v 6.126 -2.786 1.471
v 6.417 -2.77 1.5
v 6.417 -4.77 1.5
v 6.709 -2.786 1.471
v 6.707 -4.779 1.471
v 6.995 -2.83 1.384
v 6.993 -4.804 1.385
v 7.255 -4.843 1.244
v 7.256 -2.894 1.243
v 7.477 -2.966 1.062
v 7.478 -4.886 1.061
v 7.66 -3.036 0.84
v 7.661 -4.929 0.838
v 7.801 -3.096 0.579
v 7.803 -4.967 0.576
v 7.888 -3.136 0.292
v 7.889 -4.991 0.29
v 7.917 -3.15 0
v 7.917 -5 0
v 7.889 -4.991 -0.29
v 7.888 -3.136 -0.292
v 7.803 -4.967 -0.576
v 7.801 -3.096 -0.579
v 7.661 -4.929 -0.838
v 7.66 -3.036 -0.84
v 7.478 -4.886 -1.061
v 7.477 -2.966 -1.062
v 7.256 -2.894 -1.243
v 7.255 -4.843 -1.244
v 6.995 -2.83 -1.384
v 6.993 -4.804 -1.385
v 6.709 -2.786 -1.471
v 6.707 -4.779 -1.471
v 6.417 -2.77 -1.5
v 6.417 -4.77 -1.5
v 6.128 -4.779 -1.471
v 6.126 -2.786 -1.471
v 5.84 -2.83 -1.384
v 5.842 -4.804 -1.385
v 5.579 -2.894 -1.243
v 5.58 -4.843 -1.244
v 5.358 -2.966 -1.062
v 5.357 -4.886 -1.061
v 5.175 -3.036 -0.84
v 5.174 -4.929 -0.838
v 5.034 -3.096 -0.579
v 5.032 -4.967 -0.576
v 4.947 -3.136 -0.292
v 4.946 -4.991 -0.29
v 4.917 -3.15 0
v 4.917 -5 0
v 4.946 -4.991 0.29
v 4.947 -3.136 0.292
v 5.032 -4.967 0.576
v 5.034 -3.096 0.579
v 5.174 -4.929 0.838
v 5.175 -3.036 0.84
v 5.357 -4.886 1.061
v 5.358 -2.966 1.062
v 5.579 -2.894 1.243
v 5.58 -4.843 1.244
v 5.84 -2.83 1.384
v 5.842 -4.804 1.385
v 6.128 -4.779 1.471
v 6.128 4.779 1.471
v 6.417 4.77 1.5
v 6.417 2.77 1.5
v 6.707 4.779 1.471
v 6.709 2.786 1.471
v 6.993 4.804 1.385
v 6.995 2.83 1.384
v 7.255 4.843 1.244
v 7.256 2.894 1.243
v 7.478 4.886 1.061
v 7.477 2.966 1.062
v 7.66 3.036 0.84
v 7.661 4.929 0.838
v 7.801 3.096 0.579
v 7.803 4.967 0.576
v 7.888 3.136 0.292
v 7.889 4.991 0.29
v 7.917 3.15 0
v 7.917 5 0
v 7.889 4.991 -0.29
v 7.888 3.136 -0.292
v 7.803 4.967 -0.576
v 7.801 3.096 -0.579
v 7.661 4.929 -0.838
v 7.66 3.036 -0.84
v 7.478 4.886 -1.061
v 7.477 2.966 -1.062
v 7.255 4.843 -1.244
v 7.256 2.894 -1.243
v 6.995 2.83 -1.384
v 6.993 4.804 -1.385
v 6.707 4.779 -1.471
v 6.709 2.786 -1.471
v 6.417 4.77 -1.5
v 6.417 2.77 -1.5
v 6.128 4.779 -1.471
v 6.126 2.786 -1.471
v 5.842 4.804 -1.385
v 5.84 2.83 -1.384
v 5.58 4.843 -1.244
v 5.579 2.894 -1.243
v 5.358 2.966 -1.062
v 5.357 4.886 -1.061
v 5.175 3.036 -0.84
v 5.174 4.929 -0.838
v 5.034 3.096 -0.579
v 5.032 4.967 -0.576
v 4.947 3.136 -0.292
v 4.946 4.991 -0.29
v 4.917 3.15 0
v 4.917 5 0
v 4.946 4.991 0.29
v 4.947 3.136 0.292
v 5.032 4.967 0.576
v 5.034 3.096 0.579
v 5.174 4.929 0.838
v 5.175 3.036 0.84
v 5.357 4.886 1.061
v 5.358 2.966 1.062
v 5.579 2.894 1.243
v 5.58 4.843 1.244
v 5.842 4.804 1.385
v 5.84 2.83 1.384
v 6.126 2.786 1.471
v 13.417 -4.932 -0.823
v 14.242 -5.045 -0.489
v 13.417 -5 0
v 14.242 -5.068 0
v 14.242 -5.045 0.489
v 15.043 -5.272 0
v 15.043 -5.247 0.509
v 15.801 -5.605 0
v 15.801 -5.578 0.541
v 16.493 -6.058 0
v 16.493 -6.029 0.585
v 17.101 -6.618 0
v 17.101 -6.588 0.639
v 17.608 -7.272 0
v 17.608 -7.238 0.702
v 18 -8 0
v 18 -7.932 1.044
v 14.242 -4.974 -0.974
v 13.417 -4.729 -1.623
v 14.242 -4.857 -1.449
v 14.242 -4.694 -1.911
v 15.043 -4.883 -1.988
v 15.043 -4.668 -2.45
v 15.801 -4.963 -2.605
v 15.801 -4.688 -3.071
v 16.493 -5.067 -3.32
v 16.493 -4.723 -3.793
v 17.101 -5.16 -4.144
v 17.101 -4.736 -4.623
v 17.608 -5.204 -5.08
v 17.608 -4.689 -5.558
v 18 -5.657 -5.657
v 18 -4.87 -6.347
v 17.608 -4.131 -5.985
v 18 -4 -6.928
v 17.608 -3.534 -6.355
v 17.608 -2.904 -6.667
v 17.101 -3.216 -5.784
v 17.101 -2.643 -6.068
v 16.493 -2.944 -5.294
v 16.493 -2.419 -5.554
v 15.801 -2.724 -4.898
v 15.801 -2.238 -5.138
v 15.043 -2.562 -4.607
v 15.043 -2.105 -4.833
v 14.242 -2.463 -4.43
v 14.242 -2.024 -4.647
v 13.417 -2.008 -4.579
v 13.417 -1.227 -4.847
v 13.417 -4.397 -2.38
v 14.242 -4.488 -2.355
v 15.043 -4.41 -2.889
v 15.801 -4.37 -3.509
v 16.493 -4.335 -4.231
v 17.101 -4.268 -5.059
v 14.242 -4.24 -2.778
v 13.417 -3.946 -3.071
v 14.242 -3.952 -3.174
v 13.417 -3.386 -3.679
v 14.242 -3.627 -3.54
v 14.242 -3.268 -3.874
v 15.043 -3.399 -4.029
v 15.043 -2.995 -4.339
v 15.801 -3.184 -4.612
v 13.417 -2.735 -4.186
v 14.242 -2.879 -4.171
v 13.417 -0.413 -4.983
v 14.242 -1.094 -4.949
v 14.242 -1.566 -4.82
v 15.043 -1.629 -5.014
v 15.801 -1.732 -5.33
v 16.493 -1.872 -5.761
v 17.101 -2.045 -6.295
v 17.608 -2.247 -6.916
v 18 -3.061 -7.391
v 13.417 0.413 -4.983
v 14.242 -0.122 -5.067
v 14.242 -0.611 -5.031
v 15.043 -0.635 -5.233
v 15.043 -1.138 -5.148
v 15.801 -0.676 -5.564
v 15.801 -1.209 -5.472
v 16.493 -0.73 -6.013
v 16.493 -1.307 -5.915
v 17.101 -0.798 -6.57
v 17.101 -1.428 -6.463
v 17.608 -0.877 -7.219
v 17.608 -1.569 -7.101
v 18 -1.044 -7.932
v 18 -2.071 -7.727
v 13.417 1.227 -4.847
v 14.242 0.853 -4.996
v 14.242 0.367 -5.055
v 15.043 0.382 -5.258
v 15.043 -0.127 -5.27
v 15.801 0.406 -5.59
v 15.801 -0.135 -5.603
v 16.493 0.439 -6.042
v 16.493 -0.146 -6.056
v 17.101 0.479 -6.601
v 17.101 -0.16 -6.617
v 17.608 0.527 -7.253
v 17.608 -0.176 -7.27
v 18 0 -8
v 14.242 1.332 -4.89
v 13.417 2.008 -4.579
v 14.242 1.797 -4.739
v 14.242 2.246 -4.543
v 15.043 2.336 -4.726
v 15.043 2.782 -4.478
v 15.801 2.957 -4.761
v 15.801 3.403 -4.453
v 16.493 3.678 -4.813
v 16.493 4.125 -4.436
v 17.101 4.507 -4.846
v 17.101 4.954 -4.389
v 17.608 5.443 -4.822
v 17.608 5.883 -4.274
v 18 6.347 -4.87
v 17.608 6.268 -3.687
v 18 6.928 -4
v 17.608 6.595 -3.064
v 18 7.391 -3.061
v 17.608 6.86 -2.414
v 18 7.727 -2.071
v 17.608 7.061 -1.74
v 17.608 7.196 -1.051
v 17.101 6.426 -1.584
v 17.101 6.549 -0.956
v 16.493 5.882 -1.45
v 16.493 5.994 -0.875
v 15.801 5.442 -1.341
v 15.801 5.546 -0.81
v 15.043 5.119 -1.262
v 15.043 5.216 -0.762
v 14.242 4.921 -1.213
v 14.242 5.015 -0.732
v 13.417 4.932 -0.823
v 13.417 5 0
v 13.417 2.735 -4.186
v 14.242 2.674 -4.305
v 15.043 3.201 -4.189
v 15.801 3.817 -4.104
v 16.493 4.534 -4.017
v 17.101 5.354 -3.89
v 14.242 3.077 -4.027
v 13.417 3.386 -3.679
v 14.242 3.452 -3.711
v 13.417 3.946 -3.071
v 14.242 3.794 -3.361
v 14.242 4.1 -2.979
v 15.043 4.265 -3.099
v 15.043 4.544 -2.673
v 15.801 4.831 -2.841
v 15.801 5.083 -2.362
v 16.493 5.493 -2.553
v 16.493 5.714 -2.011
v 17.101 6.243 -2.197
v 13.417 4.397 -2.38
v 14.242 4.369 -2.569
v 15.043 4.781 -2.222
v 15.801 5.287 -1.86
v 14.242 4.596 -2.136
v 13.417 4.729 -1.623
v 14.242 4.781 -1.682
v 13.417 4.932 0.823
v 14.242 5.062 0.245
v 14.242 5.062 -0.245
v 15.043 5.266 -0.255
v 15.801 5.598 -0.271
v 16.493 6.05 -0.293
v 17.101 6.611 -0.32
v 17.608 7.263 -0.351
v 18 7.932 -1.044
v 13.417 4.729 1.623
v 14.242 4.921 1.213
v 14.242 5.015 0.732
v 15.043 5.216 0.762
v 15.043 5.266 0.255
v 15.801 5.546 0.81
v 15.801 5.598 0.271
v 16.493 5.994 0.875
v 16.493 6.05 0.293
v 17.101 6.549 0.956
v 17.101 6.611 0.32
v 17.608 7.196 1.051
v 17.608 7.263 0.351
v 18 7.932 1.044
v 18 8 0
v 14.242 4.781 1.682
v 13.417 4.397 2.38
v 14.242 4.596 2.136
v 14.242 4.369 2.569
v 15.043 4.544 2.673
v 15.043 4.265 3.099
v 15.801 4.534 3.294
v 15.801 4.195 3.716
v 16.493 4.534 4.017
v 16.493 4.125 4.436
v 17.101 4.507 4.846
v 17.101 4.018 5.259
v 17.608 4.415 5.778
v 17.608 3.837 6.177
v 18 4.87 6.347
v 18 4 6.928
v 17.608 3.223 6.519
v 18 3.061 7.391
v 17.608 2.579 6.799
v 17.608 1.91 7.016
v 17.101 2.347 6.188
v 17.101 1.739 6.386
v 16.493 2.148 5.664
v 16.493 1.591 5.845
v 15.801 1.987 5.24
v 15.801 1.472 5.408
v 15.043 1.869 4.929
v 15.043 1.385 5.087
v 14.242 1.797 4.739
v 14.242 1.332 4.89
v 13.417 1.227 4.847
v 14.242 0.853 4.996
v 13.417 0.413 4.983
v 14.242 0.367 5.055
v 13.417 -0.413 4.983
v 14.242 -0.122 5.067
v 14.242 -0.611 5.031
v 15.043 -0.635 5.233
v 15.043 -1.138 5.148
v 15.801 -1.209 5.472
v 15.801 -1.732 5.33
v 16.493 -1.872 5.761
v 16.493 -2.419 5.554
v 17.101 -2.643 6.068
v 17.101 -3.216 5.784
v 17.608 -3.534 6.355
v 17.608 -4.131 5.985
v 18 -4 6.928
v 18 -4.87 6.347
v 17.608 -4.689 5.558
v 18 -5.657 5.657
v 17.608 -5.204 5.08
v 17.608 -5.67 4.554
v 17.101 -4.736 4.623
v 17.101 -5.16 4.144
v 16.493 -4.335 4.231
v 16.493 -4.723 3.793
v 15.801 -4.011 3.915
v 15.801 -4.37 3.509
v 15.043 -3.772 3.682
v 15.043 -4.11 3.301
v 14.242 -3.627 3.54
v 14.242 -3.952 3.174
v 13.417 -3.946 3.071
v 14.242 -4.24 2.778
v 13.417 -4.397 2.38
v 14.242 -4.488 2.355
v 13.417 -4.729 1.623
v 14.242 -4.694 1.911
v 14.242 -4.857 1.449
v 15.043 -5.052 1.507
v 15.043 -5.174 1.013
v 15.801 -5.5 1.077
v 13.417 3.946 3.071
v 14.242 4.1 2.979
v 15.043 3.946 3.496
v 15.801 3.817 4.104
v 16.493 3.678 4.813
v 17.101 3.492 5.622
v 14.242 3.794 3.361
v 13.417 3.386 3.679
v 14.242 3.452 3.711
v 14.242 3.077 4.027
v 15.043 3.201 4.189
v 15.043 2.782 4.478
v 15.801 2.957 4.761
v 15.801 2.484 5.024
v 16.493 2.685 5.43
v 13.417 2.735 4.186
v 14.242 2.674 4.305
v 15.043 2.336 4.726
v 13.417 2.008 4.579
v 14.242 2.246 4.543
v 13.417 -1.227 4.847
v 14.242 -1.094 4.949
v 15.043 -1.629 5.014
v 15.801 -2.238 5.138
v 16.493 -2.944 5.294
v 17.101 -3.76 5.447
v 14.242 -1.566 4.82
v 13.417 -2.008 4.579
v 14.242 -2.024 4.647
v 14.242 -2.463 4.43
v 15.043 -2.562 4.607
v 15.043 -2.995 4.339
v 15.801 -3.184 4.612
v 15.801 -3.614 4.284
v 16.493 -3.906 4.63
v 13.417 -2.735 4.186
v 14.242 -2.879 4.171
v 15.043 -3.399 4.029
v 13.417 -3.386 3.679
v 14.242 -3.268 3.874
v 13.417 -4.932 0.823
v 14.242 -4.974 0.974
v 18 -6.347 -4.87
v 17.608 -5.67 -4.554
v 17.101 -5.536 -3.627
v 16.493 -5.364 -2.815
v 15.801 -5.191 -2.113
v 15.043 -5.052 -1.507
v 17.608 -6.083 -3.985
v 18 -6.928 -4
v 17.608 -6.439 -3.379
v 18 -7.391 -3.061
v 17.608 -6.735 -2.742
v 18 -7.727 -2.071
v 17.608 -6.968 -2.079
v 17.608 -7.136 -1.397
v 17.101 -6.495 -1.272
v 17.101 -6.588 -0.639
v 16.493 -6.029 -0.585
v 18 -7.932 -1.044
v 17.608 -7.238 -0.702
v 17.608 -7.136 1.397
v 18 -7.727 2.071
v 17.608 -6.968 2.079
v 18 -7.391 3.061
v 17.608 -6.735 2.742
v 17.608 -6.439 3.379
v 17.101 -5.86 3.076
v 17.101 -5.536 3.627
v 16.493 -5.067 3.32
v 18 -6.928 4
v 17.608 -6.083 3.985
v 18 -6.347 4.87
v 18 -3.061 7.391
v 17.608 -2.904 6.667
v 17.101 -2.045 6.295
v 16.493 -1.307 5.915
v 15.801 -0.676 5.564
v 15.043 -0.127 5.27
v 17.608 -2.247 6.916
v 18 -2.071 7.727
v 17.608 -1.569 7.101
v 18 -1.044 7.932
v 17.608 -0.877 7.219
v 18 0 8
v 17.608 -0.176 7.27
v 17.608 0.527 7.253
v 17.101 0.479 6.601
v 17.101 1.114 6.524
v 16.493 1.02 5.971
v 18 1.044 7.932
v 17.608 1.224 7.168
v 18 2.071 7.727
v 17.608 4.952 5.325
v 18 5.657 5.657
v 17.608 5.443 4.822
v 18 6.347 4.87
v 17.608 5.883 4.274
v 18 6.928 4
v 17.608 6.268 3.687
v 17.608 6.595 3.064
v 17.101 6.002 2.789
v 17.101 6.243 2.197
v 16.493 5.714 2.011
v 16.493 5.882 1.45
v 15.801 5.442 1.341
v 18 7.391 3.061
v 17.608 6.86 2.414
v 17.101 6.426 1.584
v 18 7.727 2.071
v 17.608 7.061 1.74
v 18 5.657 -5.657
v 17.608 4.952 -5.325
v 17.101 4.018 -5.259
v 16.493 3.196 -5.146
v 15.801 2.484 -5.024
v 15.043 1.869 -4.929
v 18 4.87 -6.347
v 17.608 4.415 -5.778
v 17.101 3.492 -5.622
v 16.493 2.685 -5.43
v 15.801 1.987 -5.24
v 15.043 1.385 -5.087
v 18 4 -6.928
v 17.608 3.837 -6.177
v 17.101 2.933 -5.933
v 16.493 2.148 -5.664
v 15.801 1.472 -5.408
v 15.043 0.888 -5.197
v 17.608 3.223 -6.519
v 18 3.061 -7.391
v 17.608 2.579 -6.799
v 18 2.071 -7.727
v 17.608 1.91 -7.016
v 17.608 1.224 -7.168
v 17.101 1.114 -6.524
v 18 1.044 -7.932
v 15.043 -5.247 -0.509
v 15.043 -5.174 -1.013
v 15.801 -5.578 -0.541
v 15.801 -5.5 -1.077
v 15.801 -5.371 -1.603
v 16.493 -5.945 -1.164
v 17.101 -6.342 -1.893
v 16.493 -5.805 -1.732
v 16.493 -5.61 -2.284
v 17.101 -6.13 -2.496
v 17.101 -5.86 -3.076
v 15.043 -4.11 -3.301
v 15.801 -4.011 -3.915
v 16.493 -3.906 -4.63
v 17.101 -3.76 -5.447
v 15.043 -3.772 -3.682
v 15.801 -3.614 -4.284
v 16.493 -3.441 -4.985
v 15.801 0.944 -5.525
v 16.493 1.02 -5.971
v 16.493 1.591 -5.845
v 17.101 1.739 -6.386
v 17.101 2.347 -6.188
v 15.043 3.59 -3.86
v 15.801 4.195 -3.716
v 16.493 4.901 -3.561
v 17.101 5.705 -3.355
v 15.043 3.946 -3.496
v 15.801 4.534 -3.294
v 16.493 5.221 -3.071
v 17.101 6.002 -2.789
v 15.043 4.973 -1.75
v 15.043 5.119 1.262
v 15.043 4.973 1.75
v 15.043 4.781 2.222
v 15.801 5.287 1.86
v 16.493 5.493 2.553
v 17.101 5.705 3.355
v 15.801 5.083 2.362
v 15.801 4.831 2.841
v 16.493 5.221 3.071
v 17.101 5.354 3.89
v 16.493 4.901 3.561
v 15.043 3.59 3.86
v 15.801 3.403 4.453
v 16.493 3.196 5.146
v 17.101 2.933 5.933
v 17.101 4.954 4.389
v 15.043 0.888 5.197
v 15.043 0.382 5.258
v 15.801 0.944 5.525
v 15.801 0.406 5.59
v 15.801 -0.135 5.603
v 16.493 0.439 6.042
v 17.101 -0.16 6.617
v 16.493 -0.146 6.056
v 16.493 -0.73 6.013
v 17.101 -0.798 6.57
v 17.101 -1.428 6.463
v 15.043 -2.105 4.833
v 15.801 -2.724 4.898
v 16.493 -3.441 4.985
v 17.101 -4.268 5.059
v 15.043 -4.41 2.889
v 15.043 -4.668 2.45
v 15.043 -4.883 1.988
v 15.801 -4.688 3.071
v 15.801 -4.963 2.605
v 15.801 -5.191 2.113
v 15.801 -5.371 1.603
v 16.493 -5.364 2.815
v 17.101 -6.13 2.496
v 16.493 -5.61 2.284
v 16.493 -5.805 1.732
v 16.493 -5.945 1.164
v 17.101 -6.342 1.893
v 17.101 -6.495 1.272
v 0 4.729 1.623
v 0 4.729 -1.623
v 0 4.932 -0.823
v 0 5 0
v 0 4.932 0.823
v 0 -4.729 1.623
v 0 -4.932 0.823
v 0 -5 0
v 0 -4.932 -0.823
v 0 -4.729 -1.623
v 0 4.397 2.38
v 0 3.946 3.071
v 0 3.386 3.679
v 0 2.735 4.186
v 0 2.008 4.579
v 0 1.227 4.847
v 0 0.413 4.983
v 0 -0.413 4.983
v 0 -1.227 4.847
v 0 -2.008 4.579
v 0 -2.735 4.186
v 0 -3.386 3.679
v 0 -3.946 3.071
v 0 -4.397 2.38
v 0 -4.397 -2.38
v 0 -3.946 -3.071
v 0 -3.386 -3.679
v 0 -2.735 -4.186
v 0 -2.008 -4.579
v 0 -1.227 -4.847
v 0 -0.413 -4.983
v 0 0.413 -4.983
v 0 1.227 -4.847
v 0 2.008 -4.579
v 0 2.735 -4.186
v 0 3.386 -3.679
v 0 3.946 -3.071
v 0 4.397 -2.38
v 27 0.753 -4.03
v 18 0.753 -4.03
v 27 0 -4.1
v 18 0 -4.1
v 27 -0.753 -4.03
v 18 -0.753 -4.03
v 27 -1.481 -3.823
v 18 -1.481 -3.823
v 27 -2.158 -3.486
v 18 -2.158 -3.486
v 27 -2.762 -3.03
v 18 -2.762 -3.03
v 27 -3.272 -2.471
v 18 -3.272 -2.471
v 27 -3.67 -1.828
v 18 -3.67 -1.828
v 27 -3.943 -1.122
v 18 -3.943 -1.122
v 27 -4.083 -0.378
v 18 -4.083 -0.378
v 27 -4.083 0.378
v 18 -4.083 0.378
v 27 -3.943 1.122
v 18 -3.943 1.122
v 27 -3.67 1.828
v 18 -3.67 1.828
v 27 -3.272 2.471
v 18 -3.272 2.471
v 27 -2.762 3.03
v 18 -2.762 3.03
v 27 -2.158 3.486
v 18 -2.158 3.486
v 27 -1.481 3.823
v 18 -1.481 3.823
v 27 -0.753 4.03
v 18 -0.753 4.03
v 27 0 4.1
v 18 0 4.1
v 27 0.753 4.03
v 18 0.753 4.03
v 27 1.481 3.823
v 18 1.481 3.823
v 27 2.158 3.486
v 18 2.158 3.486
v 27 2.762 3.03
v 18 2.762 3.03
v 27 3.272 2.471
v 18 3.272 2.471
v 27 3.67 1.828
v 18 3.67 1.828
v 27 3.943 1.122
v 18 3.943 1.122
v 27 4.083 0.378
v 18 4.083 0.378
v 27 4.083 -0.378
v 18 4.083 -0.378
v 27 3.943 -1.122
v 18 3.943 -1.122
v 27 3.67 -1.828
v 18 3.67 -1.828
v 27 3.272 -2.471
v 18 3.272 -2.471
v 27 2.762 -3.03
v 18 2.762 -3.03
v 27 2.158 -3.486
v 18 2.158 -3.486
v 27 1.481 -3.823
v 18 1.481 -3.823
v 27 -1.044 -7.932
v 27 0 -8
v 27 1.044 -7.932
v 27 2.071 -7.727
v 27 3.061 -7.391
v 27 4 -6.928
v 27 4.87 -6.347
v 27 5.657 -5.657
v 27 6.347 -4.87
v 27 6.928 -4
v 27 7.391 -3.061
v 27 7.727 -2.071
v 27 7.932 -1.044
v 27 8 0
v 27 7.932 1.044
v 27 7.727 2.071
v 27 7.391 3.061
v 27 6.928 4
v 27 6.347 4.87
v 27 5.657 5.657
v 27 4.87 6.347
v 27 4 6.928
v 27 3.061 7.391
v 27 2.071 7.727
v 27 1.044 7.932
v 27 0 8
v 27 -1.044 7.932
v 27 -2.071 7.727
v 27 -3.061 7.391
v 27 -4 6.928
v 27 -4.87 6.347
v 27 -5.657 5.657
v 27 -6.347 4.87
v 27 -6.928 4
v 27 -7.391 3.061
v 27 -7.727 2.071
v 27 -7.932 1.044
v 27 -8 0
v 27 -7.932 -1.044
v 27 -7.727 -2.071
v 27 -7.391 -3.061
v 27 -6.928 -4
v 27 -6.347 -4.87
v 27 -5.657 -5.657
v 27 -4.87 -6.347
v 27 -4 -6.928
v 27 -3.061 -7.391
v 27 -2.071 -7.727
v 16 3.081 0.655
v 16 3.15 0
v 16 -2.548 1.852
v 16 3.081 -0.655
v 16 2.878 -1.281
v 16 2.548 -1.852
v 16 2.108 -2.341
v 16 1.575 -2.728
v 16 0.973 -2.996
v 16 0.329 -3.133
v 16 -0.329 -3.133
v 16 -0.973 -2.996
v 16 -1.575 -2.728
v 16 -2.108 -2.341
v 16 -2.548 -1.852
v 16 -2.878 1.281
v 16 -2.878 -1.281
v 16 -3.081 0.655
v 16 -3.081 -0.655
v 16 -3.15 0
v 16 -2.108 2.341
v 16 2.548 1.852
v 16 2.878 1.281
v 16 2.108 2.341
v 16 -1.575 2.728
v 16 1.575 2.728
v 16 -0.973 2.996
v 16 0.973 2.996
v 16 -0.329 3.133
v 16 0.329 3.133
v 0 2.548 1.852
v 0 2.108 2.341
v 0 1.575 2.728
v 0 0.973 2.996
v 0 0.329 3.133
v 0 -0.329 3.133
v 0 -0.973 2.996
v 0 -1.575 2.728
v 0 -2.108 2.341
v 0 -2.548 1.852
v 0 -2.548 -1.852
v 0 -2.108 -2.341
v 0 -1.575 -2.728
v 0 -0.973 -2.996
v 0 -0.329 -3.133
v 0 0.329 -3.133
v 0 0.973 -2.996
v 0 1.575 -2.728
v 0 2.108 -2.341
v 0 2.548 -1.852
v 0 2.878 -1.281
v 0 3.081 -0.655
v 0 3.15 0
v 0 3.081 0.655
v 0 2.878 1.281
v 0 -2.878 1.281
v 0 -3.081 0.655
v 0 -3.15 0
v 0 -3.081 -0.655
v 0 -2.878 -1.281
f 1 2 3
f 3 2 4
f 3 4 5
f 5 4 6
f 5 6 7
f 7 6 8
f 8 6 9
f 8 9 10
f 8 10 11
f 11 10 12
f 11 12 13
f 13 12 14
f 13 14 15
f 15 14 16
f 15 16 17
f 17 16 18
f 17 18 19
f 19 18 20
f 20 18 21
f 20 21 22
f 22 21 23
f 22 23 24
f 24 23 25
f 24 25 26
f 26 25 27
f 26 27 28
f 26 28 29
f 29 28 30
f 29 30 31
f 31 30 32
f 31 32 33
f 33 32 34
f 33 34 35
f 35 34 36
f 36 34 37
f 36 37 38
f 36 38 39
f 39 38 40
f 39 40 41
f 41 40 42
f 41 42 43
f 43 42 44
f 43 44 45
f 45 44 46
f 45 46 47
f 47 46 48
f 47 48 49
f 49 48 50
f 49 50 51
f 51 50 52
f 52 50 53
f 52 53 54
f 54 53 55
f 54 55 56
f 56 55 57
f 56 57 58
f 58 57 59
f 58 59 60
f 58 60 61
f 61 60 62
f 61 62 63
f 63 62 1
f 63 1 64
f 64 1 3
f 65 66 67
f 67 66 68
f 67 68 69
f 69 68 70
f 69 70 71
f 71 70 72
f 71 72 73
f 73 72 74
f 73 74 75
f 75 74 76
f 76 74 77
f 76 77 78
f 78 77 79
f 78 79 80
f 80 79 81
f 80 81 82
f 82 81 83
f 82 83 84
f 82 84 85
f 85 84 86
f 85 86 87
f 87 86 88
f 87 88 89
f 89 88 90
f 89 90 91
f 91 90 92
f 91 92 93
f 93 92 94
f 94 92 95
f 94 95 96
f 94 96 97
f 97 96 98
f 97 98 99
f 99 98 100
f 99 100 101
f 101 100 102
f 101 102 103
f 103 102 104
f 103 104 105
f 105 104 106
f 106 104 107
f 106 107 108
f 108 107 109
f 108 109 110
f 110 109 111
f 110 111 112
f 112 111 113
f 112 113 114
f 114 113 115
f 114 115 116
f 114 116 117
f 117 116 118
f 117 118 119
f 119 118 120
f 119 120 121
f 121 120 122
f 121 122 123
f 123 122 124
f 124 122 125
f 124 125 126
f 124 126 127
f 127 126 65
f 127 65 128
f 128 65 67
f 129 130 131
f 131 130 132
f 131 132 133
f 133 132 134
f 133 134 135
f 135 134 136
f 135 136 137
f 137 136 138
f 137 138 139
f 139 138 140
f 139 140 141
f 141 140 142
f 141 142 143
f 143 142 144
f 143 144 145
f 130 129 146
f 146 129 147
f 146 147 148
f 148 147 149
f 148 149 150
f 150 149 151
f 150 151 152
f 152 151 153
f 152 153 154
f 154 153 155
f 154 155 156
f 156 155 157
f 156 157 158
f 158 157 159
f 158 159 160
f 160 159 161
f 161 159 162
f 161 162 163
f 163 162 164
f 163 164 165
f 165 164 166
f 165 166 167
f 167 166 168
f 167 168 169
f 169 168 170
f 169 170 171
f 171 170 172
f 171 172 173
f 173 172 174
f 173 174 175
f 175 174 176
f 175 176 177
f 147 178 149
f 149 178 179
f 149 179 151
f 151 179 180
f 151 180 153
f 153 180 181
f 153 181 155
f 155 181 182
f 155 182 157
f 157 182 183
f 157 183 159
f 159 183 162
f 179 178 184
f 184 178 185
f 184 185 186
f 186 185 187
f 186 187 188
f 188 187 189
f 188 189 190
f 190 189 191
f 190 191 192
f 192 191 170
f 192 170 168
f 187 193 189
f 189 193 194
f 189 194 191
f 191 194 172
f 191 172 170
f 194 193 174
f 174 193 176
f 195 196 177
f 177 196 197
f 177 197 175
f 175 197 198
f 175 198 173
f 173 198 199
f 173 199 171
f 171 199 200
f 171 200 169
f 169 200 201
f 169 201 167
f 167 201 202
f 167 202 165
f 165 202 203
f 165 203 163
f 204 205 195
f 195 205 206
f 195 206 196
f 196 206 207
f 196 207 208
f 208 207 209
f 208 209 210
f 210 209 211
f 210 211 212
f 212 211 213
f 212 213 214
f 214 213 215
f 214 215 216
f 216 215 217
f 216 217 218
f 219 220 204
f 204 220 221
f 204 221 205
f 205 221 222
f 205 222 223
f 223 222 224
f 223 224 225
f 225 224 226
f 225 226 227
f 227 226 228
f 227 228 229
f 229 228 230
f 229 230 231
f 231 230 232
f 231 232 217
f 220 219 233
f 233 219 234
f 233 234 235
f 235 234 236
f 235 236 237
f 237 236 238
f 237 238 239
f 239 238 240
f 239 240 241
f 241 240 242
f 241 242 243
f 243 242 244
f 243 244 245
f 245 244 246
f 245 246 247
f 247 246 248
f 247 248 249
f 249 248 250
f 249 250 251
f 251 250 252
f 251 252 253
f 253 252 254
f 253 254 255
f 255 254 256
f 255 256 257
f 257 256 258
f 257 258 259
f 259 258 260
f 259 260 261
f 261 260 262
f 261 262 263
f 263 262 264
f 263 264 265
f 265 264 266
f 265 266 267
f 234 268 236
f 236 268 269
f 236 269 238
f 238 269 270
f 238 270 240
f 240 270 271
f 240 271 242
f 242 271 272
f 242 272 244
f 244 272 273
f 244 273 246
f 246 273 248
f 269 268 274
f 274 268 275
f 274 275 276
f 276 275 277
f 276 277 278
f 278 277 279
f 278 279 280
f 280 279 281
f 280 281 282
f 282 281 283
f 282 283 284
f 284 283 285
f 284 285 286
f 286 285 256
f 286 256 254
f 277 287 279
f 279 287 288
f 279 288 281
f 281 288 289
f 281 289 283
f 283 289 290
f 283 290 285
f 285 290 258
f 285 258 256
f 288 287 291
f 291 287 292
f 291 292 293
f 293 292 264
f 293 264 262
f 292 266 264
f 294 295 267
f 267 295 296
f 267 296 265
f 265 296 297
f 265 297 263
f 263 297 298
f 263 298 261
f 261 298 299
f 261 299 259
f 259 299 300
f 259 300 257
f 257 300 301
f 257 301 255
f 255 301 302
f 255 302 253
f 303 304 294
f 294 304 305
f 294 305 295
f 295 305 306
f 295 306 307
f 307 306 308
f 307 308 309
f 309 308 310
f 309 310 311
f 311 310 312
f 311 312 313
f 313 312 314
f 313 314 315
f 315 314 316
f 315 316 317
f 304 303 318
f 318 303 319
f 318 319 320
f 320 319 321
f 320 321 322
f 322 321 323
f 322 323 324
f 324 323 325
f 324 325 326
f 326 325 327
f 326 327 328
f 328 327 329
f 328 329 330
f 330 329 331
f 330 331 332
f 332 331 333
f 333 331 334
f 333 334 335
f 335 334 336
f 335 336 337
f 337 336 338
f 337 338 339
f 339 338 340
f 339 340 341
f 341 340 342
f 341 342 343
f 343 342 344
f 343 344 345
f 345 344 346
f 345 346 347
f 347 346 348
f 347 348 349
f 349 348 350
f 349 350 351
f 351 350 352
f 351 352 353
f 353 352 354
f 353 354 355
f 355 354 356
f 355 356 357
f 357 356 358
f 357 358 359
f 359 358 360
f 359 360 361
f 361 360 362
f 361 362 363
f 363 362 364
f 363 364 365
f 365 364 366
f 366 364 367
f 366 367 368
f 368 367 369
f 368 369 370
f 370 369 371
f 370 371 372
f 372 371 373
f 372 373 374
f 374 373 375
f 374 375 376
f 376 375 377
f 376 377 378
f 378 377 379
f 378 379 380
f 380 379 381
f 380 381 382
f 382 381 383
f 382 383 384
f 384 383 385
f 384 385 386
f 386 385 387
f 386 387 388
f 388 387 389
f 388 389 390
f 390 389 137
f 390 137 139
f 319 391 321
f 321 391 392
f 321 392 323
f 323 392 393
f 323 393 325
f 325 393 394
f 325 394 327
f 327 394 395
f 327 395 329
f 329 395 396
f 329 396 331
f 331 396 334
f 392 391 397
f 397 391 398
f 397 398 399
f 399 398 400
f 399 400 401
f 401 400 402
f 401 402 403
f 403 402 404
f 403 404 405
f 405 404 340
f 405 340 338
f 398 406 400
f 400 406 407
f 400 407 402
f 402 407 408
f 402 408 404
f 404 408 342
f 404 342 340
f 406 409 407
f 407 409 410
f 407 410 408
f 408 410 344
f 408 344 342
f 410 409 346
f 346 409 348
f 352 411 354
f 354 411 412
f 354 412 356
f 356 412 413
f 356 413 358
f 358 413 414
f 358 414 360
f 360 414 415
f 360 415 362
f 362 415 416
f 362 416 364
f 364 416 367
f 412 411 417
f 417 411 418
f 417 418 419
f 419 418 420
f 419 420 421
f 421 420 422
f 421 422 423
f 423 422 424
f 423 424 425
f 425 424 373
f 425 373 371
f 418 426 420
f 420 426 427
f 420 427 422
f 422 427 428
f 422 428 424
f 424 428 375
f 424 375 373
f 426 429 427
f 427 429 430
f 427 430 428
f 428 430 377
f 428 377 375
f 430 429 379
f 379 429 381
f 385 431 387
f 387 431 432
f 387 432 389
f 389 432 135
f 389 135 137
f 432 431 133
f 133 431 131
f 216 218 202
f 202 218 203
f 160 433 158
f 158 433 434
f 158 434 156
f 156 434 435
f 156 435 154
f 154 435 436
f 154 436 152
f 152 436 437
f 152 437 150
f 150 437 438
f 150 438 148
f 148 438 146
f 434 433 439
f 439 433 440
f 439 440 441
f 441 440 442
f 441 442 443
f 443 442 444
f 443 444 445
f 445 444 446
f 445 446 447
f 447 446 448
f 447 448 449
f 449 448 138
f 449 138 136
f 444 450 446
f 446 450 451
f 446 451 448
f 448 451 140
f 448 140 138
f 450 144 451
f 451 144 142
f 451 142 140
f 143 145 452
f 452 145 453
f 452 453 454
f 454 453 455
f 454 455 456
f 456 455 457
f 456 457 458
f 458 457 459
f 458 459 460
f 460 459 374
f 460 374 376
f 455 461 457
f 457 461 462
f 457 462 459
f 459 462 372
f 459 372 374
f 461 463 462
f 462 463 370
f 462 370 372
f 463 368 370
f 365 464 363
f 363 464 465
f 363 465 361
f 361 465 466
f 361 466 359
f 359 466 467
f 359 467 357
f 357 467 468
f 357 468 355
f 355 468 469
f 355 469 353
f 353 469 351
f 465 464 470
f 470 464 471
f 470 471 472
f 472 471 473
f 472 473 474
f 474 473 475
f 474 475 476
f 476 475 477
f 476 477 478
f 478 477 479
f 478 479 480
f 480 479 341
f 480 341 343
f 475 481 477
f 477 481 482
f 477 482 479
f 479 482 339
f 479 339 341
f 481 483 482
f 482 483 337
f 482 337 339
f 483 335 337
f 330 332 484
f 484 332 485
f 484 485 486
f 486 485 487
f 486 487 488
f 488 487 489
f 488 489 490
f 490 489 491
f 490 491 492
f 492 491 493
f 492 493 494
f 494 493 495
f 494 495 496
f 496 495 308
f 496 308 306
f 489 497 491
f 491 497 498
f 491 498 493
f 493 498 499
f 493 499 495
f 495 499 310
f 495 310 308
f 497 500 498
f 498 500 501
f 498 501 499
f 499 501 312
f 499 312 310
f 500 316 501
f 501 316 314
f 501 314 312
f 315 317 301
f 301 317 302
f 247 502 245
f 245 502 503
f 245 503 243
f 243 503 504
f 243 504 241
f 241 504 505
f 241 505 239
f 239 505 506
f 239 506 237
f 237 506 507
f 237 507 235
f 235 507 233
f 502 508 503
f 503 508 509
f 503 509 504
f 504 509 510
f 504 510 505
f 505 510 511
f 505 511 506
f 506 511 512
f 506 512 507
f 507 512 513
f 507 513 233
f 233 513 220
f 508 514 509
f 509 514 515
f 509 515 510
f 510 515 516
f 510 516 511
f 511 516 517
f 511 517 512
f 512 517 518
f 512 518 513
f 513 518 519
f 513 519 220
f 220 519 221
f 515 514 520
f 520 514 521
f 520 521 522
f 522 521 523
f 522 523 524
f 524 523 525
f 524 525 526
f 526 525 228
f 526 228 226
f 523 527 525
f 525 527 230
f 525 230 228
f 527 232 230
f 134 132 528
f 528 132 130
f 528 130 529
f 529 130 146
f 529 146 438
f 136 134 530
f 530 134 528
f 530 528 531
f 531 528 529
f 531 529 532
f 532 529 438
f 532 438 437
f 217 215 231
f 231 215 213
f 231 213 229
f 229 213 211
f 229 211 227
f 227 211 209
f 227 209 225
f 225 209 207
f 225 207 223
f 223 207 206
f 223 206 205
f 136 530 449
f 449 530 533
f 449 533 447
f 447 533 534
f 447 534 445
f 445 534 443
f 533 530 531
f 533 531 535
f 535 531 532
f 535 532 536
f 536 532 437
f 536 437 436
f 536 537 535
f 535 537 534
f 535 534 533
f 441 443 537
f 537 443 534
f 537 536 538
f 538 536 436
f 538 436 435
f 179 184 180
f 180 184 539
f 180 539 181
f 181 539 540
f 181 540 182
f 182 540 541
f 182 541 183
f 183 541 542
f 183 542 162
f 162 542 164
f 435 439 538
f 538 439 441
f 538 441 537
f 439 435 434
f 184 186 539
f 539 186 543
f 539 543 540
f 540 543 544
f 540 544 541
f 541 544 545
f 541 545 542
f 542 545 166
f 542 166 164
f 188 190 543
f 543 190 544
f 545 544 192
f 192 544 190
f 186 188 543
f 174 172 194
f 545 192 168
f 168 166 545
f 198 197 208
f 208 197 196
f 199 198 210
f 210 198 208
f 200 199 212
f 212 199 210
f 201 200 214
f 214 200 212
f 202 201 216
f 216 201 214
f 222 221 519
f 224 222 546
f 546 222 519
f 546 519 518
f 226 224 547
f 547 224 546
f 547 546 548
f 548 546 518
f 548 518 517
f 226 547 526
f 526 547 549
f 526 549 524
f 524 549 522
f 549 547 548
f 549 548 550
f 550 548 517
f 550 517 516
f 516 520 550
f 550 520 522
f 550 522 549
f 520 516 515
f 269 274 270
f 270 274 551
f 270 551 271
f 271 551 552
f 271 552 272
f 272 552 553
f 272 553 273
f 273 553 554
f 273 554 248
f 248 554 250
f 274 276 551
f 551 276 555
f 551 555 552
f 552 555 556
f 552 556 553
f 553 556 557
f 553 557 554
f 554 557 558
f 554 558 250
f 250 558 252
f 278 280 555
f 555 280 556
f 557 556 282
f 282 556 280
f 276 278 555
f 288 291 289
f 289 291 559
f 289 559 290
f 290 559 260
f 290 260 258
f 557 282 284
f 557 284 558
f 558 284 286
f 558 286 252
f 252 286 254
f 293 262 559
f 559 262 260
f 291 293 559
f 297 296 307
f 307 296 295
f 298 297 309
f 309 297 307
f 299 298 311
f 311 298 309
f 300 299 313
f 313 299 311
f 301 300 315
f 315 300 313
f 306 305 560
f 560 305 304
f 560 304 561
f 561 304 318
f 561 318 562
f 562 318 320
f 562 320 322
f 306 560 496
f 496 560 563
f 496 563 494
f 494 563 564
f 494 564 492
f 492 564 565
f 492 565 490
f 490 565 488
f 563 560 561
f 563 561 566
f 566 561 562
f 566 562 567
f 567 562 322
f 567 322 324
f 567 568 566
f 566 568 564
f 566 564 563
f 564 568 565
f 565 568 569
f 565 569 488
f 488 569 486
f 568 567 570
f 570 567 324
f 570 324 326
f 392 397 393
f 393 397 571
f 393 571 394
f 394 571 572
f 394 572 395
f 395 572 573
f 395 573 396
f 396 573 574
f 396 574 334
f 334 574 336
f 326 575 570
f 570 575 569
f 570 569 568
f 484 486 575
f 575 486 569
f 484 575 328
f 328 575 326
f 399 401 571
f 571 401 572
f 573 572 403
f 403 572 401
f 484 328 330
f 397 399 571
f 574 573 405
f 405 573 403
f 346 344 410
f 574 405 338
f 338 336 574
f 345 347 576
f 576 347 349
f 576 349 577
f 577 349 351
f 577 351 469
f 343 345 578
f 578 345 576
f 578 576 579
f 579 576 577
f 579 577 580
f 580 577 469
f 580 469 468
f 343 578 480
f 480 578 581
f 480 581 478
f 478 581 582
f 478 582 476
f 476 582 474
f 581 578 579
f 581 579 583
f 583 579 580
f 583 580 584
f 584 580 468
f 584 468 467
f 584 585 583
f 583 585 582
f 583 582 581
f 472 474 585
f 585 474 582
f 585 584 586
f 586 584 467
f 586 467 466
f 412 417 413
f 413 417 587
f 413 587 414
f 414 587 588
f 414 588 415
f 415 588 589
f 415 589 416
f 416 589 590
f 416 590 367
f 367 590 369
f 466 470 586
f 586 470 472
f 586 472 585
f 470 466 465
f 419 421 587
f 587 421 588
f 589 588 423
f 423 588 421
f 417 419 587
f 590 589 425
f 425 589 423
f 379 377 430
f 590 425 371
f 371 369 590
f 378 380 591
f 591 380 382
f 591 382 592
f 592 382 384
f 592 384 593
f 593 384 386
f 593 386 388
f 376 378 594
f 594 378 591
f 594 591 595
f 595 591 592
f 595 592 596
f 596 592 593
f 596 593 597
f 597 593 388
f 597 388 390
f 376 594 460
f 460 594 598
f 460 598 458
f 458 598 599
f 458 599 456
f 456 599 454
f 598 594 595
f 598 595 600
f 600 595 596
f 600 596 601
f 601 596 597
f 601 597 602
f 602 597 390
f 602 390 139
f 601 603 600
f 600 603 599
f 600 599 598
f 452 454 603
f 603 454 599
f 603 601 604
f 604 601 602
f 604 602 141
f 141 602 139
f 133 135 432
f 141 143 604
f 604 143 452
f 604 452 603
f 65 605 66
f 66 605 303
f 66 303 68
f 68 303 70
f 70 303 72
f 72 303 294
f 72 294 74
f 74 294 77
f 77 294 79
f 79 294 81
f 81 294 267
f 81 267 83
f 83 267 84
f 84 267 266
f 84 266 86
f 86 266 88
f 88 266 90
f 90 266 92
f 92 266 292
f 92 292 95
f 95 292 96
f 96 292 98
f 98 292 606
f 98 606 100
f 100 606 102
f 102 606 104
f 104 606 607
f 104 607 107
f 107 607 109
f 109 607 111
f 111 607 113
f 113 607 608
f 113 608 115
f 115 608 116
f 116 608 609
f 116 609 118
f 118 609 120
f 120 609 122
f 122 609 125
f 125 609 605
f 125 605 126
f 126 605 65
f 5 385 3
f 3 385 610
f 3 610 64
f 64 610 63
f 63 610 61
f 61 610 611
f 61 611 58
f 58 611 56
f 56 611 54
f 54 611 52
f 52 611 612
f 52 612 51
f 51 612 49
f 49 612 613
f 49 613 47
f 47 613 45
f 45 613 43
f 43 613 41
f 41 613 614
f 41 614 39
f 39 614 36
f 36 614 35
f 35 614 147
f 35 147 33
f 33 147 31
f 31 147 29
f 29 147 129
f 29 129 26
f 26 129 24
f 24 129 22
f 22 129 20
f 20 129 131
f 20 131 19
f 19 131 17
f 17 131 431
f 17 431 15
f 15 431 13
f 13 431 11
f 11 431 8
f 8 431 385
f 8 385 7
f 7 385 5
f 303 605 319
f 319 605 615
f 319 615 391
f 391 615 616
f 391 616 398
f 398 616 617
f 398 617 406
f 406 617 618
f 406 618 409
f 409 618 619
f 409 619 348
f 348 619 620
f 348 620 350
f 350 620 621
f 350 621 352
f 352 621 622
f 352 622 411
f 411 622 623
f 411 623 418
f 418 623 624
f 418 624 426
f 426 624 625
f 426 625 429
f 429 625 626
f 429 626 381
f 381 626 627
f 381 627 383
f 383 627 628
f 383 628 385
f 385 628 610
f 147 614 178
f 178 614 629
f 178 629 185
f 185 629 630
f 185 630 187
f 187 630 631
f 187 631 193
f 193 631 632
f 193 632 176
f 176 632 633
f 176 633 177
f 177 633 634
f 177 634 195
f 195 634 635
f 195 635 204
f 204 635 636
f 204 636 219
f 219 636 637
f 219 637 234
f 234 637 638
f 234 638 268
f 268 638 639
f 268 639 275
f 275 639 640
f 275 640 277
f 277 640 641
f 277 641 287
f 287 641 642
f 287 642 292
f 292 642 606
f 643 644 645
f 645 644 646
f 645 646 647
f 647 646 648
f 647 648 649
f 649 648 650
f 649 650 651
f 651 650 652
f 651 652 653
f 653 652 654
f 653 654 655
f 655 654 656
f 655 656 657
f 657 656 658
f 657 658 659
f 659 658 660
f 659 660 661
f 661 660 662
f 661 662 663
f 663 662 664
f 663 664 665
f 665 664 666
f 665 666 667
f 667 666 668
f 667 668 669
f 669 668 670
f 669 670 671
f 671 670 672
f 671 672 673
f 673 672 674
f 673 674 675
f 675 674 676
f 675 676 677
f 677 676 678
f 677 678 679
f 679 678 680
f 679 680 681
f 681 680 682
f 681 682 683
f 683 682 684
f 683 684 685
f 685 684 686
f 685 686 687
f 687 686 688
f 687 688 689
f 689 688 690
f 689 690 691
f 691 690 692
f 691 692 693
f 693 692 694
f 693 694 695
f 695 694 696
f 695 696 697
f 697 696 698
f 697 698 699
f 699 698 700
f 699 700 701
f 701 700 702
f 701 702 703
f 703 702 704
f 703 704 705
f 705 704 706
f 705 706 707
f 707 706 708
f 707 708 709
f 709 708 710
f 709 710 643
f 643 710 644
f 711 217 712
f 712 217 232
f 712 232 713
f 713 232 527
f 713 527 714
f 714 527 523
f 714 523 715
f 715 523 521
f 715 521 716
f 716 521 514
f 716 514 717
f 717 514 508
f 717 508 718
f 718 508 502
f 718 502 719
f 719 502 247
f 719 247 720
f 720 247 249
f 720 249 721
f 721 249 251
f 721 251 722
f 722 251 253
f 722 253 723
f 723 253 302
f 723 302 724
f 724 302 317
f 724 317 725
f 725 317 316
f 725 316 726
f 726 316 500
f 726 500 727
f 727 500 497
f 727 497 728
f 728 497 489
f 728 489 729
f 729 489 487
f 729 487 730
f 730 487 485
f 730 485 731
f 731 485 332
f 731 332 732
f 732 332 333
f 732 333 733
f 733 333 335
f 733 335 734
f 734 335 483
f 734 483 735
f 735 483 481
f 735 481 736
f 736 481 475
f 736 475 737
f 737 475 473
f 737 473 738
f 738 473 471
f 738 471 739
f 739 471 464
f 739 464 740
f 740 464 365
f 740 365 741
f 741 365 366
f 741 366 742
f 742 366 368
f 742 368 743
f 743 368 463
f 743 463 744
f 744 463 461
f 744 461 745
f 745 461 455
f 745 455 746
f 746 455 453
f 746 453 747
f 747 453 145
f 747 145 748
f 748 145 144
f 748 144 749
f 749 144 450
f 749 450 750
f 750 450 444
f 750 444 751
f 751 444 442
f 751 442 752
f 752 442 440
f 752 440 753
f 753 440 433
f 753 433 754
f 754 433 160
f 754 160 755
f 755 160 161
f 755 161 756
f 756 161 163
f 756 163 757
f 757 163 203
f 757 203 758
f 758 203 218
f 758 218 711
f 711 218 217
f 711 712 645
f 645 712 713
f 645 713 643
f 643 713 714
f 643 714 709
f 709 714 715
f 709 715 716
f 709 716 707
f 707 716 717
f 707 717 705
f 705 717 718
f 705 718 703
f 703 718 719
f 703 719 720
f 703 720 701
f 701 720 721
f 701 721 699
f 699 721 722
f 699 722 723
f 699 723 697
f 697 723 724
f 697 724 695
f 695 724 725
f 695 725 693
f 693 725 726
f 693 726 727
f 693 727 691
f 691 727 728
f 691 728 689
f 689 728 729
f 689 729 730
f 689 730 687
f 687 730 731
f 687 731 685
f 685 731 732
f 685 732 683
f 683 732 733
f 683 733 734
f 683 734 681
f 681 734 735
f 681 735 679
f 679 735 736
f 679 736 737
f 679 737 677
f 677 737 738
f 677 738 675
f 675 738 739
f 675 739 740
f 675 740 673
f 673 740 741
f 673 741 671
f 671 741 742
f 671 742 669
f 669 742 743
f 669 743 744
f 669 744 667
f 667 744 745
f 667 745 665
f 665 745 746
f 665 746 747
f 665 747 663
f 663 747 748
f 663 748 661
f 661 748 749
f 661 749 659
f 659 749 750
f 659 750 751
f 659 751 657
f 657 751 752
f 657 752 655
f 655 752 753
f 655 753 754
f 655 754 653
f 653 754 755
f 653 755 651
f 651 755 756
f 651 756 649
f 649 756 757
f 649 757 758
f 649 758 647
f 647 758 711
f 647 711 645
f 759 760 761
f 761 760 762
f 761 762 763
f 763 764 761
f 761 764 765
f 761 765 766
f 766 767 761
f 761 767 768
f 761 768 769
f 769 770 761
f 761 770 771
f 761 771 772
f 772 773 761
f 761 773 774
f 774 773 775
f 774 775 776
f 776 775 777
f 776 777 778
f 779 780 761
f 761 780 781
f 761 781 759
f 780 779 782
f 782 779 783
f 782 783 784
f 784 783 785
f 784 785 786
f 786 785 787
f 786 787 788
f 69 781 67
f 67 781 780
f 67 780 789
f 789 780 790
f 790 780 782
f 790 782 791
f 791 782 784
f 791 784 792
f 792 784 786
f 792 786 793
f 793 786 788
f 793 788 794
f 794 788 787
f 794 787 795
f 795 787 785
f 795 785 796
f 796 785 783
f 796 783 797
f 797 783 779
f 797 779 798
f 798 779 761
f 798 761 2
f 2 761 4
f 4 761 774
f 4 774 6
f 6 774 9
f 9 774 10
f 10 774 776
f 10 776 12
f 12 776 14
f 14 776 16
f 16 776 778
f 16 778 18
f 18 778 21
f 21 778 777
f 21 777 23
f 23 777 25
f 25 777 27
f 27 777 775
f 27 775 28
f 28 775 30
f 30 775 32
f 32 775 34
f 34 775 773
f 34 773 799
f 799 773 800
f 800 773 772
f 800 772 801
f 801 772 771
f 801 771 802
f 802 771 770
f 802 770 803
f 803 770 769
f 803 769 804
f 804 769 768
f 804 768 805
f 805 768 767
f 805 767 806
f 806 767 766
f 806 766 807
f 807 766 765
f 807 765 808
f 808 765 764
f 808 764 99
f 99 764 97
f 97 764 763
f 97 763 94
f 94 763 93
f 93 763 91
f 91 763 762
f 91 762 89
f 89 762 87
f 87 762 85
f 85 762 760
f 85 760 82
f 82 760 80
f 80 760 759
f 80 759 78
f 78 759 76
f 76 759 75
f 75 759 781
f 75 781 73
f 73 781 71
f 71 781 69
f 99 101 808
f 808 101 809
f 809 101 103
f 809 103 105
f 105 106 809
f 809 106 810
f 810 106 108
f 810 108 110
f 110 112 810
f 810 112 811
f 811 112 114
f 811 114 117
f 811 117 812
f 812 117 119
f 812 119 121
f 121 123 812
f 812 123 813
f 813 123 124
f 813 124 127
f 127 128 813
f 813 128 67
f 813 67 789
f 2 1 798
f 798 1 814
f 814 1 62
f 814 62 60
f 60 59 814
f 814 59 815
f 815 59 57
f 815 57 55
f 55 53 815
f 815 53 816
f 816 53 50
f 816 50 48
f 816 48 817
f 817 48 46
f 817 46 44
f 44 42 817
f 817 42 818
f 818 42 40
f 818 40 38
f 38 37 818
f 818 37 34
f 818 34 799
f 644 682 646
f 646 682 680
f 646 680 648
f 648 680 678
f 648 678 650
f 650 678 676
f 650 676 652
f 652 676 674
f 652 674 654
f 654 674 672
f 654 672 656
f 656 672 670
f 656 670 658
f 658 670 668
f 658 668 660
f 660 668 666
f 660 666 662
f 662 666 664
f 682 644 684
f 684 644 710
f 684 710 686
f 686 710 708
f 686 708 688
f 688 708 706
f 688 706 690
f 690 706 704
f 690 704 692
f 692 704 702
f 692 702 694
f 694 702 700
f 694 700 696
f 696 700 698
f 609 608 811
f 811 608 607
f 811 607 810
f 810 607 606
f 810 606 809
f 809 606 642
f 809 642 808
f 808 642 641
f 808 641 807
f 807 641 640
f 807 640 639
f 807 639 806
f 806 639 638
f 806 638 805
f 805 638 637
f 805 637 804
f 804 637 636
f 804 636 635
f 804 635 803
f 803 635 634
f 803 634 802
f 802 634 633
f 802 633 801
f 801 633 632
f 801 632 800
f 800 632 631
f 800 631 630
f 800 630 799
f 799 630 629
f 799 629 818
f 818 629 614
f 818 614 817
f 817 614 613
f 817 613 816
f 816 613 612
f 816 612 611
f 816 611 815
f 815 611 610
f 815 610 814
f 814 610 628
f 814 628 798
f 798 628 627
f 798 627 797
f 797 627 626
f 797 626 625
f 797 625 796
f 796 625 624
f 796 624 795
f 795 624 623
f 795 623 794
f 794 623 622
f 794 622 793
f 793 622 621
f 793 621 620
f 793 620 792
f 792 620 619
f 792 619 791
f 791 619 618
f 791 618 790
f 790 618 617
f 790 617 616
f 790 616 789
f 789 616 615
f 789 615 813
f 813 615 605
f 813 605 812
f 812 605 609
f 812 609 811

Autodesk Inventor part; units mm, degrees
ref_plane "YZ Plane" through (0, 0, 0) normal (1, 0, 0) x (0, 1, 0)
ref_plane "XZ Plane" through (0, 0, 0) normal (0, 1, 0) x (-1, 0, 0)
ref_plane "XY Plane" through (0, 0, 0) normal (0, 0, 1) x (1, 0, 0)
sketch "Sketch1" plane through (0, 0, 0) normal (1, 0, 0) x (0, 1, 0)
  circle A0 centre (0, 0) radius 3.15
  circle A1 centre (0, 0) radius 5
  dimension "d0" = 6.3
  dimension "d1" = 10
extrude "Extrusion1" add sketch "Sketch1" along normal blind 18
sketch "Sketch2" plane through (18, 0, 0) normal (1, 0, 0) x (0, 0, -1)
  circle A0 centre (0, 0) radius 5
  dimension "d4" = 10
extrude "Extrusion2" add sketch "Sketch2" against normal blind 2
sketch "Sketch3" plane through (18, 0, 0) normal (1, 0, 0) x (0, 0, -1)
  circle A0 centre (0, 0) radius 4.1
  circle A1 centre (0, 0) radius 8
  dimension "d7" = 8.2
  dimension "d8" = 16
extrude "Extrusion3" add sketch "Sketch3" along normal blind 9
fillet "Fillet1" radius 5 1 edges at (18, -5, 0)
sketch "Sketch4" plane through (0, 0, 0) normal (0, 1, 0) x (-1, 0, 0)
  line L0 (-13.4174, 5) -> (-13.4174, -5) projected
  line L1 (-13.4174, 0) -> (-6.4174, 0)
  circle A0 centre (-6.4174, 0) radius 1.5
  point P0 (0, 0)
  dimension "d12" = 7
  dimension "d13" = 3
extrude "Extrusion4" cut sketch "Sketch4" along normal mid plane 44
properties part number "coupling_motor_lead_screw"
